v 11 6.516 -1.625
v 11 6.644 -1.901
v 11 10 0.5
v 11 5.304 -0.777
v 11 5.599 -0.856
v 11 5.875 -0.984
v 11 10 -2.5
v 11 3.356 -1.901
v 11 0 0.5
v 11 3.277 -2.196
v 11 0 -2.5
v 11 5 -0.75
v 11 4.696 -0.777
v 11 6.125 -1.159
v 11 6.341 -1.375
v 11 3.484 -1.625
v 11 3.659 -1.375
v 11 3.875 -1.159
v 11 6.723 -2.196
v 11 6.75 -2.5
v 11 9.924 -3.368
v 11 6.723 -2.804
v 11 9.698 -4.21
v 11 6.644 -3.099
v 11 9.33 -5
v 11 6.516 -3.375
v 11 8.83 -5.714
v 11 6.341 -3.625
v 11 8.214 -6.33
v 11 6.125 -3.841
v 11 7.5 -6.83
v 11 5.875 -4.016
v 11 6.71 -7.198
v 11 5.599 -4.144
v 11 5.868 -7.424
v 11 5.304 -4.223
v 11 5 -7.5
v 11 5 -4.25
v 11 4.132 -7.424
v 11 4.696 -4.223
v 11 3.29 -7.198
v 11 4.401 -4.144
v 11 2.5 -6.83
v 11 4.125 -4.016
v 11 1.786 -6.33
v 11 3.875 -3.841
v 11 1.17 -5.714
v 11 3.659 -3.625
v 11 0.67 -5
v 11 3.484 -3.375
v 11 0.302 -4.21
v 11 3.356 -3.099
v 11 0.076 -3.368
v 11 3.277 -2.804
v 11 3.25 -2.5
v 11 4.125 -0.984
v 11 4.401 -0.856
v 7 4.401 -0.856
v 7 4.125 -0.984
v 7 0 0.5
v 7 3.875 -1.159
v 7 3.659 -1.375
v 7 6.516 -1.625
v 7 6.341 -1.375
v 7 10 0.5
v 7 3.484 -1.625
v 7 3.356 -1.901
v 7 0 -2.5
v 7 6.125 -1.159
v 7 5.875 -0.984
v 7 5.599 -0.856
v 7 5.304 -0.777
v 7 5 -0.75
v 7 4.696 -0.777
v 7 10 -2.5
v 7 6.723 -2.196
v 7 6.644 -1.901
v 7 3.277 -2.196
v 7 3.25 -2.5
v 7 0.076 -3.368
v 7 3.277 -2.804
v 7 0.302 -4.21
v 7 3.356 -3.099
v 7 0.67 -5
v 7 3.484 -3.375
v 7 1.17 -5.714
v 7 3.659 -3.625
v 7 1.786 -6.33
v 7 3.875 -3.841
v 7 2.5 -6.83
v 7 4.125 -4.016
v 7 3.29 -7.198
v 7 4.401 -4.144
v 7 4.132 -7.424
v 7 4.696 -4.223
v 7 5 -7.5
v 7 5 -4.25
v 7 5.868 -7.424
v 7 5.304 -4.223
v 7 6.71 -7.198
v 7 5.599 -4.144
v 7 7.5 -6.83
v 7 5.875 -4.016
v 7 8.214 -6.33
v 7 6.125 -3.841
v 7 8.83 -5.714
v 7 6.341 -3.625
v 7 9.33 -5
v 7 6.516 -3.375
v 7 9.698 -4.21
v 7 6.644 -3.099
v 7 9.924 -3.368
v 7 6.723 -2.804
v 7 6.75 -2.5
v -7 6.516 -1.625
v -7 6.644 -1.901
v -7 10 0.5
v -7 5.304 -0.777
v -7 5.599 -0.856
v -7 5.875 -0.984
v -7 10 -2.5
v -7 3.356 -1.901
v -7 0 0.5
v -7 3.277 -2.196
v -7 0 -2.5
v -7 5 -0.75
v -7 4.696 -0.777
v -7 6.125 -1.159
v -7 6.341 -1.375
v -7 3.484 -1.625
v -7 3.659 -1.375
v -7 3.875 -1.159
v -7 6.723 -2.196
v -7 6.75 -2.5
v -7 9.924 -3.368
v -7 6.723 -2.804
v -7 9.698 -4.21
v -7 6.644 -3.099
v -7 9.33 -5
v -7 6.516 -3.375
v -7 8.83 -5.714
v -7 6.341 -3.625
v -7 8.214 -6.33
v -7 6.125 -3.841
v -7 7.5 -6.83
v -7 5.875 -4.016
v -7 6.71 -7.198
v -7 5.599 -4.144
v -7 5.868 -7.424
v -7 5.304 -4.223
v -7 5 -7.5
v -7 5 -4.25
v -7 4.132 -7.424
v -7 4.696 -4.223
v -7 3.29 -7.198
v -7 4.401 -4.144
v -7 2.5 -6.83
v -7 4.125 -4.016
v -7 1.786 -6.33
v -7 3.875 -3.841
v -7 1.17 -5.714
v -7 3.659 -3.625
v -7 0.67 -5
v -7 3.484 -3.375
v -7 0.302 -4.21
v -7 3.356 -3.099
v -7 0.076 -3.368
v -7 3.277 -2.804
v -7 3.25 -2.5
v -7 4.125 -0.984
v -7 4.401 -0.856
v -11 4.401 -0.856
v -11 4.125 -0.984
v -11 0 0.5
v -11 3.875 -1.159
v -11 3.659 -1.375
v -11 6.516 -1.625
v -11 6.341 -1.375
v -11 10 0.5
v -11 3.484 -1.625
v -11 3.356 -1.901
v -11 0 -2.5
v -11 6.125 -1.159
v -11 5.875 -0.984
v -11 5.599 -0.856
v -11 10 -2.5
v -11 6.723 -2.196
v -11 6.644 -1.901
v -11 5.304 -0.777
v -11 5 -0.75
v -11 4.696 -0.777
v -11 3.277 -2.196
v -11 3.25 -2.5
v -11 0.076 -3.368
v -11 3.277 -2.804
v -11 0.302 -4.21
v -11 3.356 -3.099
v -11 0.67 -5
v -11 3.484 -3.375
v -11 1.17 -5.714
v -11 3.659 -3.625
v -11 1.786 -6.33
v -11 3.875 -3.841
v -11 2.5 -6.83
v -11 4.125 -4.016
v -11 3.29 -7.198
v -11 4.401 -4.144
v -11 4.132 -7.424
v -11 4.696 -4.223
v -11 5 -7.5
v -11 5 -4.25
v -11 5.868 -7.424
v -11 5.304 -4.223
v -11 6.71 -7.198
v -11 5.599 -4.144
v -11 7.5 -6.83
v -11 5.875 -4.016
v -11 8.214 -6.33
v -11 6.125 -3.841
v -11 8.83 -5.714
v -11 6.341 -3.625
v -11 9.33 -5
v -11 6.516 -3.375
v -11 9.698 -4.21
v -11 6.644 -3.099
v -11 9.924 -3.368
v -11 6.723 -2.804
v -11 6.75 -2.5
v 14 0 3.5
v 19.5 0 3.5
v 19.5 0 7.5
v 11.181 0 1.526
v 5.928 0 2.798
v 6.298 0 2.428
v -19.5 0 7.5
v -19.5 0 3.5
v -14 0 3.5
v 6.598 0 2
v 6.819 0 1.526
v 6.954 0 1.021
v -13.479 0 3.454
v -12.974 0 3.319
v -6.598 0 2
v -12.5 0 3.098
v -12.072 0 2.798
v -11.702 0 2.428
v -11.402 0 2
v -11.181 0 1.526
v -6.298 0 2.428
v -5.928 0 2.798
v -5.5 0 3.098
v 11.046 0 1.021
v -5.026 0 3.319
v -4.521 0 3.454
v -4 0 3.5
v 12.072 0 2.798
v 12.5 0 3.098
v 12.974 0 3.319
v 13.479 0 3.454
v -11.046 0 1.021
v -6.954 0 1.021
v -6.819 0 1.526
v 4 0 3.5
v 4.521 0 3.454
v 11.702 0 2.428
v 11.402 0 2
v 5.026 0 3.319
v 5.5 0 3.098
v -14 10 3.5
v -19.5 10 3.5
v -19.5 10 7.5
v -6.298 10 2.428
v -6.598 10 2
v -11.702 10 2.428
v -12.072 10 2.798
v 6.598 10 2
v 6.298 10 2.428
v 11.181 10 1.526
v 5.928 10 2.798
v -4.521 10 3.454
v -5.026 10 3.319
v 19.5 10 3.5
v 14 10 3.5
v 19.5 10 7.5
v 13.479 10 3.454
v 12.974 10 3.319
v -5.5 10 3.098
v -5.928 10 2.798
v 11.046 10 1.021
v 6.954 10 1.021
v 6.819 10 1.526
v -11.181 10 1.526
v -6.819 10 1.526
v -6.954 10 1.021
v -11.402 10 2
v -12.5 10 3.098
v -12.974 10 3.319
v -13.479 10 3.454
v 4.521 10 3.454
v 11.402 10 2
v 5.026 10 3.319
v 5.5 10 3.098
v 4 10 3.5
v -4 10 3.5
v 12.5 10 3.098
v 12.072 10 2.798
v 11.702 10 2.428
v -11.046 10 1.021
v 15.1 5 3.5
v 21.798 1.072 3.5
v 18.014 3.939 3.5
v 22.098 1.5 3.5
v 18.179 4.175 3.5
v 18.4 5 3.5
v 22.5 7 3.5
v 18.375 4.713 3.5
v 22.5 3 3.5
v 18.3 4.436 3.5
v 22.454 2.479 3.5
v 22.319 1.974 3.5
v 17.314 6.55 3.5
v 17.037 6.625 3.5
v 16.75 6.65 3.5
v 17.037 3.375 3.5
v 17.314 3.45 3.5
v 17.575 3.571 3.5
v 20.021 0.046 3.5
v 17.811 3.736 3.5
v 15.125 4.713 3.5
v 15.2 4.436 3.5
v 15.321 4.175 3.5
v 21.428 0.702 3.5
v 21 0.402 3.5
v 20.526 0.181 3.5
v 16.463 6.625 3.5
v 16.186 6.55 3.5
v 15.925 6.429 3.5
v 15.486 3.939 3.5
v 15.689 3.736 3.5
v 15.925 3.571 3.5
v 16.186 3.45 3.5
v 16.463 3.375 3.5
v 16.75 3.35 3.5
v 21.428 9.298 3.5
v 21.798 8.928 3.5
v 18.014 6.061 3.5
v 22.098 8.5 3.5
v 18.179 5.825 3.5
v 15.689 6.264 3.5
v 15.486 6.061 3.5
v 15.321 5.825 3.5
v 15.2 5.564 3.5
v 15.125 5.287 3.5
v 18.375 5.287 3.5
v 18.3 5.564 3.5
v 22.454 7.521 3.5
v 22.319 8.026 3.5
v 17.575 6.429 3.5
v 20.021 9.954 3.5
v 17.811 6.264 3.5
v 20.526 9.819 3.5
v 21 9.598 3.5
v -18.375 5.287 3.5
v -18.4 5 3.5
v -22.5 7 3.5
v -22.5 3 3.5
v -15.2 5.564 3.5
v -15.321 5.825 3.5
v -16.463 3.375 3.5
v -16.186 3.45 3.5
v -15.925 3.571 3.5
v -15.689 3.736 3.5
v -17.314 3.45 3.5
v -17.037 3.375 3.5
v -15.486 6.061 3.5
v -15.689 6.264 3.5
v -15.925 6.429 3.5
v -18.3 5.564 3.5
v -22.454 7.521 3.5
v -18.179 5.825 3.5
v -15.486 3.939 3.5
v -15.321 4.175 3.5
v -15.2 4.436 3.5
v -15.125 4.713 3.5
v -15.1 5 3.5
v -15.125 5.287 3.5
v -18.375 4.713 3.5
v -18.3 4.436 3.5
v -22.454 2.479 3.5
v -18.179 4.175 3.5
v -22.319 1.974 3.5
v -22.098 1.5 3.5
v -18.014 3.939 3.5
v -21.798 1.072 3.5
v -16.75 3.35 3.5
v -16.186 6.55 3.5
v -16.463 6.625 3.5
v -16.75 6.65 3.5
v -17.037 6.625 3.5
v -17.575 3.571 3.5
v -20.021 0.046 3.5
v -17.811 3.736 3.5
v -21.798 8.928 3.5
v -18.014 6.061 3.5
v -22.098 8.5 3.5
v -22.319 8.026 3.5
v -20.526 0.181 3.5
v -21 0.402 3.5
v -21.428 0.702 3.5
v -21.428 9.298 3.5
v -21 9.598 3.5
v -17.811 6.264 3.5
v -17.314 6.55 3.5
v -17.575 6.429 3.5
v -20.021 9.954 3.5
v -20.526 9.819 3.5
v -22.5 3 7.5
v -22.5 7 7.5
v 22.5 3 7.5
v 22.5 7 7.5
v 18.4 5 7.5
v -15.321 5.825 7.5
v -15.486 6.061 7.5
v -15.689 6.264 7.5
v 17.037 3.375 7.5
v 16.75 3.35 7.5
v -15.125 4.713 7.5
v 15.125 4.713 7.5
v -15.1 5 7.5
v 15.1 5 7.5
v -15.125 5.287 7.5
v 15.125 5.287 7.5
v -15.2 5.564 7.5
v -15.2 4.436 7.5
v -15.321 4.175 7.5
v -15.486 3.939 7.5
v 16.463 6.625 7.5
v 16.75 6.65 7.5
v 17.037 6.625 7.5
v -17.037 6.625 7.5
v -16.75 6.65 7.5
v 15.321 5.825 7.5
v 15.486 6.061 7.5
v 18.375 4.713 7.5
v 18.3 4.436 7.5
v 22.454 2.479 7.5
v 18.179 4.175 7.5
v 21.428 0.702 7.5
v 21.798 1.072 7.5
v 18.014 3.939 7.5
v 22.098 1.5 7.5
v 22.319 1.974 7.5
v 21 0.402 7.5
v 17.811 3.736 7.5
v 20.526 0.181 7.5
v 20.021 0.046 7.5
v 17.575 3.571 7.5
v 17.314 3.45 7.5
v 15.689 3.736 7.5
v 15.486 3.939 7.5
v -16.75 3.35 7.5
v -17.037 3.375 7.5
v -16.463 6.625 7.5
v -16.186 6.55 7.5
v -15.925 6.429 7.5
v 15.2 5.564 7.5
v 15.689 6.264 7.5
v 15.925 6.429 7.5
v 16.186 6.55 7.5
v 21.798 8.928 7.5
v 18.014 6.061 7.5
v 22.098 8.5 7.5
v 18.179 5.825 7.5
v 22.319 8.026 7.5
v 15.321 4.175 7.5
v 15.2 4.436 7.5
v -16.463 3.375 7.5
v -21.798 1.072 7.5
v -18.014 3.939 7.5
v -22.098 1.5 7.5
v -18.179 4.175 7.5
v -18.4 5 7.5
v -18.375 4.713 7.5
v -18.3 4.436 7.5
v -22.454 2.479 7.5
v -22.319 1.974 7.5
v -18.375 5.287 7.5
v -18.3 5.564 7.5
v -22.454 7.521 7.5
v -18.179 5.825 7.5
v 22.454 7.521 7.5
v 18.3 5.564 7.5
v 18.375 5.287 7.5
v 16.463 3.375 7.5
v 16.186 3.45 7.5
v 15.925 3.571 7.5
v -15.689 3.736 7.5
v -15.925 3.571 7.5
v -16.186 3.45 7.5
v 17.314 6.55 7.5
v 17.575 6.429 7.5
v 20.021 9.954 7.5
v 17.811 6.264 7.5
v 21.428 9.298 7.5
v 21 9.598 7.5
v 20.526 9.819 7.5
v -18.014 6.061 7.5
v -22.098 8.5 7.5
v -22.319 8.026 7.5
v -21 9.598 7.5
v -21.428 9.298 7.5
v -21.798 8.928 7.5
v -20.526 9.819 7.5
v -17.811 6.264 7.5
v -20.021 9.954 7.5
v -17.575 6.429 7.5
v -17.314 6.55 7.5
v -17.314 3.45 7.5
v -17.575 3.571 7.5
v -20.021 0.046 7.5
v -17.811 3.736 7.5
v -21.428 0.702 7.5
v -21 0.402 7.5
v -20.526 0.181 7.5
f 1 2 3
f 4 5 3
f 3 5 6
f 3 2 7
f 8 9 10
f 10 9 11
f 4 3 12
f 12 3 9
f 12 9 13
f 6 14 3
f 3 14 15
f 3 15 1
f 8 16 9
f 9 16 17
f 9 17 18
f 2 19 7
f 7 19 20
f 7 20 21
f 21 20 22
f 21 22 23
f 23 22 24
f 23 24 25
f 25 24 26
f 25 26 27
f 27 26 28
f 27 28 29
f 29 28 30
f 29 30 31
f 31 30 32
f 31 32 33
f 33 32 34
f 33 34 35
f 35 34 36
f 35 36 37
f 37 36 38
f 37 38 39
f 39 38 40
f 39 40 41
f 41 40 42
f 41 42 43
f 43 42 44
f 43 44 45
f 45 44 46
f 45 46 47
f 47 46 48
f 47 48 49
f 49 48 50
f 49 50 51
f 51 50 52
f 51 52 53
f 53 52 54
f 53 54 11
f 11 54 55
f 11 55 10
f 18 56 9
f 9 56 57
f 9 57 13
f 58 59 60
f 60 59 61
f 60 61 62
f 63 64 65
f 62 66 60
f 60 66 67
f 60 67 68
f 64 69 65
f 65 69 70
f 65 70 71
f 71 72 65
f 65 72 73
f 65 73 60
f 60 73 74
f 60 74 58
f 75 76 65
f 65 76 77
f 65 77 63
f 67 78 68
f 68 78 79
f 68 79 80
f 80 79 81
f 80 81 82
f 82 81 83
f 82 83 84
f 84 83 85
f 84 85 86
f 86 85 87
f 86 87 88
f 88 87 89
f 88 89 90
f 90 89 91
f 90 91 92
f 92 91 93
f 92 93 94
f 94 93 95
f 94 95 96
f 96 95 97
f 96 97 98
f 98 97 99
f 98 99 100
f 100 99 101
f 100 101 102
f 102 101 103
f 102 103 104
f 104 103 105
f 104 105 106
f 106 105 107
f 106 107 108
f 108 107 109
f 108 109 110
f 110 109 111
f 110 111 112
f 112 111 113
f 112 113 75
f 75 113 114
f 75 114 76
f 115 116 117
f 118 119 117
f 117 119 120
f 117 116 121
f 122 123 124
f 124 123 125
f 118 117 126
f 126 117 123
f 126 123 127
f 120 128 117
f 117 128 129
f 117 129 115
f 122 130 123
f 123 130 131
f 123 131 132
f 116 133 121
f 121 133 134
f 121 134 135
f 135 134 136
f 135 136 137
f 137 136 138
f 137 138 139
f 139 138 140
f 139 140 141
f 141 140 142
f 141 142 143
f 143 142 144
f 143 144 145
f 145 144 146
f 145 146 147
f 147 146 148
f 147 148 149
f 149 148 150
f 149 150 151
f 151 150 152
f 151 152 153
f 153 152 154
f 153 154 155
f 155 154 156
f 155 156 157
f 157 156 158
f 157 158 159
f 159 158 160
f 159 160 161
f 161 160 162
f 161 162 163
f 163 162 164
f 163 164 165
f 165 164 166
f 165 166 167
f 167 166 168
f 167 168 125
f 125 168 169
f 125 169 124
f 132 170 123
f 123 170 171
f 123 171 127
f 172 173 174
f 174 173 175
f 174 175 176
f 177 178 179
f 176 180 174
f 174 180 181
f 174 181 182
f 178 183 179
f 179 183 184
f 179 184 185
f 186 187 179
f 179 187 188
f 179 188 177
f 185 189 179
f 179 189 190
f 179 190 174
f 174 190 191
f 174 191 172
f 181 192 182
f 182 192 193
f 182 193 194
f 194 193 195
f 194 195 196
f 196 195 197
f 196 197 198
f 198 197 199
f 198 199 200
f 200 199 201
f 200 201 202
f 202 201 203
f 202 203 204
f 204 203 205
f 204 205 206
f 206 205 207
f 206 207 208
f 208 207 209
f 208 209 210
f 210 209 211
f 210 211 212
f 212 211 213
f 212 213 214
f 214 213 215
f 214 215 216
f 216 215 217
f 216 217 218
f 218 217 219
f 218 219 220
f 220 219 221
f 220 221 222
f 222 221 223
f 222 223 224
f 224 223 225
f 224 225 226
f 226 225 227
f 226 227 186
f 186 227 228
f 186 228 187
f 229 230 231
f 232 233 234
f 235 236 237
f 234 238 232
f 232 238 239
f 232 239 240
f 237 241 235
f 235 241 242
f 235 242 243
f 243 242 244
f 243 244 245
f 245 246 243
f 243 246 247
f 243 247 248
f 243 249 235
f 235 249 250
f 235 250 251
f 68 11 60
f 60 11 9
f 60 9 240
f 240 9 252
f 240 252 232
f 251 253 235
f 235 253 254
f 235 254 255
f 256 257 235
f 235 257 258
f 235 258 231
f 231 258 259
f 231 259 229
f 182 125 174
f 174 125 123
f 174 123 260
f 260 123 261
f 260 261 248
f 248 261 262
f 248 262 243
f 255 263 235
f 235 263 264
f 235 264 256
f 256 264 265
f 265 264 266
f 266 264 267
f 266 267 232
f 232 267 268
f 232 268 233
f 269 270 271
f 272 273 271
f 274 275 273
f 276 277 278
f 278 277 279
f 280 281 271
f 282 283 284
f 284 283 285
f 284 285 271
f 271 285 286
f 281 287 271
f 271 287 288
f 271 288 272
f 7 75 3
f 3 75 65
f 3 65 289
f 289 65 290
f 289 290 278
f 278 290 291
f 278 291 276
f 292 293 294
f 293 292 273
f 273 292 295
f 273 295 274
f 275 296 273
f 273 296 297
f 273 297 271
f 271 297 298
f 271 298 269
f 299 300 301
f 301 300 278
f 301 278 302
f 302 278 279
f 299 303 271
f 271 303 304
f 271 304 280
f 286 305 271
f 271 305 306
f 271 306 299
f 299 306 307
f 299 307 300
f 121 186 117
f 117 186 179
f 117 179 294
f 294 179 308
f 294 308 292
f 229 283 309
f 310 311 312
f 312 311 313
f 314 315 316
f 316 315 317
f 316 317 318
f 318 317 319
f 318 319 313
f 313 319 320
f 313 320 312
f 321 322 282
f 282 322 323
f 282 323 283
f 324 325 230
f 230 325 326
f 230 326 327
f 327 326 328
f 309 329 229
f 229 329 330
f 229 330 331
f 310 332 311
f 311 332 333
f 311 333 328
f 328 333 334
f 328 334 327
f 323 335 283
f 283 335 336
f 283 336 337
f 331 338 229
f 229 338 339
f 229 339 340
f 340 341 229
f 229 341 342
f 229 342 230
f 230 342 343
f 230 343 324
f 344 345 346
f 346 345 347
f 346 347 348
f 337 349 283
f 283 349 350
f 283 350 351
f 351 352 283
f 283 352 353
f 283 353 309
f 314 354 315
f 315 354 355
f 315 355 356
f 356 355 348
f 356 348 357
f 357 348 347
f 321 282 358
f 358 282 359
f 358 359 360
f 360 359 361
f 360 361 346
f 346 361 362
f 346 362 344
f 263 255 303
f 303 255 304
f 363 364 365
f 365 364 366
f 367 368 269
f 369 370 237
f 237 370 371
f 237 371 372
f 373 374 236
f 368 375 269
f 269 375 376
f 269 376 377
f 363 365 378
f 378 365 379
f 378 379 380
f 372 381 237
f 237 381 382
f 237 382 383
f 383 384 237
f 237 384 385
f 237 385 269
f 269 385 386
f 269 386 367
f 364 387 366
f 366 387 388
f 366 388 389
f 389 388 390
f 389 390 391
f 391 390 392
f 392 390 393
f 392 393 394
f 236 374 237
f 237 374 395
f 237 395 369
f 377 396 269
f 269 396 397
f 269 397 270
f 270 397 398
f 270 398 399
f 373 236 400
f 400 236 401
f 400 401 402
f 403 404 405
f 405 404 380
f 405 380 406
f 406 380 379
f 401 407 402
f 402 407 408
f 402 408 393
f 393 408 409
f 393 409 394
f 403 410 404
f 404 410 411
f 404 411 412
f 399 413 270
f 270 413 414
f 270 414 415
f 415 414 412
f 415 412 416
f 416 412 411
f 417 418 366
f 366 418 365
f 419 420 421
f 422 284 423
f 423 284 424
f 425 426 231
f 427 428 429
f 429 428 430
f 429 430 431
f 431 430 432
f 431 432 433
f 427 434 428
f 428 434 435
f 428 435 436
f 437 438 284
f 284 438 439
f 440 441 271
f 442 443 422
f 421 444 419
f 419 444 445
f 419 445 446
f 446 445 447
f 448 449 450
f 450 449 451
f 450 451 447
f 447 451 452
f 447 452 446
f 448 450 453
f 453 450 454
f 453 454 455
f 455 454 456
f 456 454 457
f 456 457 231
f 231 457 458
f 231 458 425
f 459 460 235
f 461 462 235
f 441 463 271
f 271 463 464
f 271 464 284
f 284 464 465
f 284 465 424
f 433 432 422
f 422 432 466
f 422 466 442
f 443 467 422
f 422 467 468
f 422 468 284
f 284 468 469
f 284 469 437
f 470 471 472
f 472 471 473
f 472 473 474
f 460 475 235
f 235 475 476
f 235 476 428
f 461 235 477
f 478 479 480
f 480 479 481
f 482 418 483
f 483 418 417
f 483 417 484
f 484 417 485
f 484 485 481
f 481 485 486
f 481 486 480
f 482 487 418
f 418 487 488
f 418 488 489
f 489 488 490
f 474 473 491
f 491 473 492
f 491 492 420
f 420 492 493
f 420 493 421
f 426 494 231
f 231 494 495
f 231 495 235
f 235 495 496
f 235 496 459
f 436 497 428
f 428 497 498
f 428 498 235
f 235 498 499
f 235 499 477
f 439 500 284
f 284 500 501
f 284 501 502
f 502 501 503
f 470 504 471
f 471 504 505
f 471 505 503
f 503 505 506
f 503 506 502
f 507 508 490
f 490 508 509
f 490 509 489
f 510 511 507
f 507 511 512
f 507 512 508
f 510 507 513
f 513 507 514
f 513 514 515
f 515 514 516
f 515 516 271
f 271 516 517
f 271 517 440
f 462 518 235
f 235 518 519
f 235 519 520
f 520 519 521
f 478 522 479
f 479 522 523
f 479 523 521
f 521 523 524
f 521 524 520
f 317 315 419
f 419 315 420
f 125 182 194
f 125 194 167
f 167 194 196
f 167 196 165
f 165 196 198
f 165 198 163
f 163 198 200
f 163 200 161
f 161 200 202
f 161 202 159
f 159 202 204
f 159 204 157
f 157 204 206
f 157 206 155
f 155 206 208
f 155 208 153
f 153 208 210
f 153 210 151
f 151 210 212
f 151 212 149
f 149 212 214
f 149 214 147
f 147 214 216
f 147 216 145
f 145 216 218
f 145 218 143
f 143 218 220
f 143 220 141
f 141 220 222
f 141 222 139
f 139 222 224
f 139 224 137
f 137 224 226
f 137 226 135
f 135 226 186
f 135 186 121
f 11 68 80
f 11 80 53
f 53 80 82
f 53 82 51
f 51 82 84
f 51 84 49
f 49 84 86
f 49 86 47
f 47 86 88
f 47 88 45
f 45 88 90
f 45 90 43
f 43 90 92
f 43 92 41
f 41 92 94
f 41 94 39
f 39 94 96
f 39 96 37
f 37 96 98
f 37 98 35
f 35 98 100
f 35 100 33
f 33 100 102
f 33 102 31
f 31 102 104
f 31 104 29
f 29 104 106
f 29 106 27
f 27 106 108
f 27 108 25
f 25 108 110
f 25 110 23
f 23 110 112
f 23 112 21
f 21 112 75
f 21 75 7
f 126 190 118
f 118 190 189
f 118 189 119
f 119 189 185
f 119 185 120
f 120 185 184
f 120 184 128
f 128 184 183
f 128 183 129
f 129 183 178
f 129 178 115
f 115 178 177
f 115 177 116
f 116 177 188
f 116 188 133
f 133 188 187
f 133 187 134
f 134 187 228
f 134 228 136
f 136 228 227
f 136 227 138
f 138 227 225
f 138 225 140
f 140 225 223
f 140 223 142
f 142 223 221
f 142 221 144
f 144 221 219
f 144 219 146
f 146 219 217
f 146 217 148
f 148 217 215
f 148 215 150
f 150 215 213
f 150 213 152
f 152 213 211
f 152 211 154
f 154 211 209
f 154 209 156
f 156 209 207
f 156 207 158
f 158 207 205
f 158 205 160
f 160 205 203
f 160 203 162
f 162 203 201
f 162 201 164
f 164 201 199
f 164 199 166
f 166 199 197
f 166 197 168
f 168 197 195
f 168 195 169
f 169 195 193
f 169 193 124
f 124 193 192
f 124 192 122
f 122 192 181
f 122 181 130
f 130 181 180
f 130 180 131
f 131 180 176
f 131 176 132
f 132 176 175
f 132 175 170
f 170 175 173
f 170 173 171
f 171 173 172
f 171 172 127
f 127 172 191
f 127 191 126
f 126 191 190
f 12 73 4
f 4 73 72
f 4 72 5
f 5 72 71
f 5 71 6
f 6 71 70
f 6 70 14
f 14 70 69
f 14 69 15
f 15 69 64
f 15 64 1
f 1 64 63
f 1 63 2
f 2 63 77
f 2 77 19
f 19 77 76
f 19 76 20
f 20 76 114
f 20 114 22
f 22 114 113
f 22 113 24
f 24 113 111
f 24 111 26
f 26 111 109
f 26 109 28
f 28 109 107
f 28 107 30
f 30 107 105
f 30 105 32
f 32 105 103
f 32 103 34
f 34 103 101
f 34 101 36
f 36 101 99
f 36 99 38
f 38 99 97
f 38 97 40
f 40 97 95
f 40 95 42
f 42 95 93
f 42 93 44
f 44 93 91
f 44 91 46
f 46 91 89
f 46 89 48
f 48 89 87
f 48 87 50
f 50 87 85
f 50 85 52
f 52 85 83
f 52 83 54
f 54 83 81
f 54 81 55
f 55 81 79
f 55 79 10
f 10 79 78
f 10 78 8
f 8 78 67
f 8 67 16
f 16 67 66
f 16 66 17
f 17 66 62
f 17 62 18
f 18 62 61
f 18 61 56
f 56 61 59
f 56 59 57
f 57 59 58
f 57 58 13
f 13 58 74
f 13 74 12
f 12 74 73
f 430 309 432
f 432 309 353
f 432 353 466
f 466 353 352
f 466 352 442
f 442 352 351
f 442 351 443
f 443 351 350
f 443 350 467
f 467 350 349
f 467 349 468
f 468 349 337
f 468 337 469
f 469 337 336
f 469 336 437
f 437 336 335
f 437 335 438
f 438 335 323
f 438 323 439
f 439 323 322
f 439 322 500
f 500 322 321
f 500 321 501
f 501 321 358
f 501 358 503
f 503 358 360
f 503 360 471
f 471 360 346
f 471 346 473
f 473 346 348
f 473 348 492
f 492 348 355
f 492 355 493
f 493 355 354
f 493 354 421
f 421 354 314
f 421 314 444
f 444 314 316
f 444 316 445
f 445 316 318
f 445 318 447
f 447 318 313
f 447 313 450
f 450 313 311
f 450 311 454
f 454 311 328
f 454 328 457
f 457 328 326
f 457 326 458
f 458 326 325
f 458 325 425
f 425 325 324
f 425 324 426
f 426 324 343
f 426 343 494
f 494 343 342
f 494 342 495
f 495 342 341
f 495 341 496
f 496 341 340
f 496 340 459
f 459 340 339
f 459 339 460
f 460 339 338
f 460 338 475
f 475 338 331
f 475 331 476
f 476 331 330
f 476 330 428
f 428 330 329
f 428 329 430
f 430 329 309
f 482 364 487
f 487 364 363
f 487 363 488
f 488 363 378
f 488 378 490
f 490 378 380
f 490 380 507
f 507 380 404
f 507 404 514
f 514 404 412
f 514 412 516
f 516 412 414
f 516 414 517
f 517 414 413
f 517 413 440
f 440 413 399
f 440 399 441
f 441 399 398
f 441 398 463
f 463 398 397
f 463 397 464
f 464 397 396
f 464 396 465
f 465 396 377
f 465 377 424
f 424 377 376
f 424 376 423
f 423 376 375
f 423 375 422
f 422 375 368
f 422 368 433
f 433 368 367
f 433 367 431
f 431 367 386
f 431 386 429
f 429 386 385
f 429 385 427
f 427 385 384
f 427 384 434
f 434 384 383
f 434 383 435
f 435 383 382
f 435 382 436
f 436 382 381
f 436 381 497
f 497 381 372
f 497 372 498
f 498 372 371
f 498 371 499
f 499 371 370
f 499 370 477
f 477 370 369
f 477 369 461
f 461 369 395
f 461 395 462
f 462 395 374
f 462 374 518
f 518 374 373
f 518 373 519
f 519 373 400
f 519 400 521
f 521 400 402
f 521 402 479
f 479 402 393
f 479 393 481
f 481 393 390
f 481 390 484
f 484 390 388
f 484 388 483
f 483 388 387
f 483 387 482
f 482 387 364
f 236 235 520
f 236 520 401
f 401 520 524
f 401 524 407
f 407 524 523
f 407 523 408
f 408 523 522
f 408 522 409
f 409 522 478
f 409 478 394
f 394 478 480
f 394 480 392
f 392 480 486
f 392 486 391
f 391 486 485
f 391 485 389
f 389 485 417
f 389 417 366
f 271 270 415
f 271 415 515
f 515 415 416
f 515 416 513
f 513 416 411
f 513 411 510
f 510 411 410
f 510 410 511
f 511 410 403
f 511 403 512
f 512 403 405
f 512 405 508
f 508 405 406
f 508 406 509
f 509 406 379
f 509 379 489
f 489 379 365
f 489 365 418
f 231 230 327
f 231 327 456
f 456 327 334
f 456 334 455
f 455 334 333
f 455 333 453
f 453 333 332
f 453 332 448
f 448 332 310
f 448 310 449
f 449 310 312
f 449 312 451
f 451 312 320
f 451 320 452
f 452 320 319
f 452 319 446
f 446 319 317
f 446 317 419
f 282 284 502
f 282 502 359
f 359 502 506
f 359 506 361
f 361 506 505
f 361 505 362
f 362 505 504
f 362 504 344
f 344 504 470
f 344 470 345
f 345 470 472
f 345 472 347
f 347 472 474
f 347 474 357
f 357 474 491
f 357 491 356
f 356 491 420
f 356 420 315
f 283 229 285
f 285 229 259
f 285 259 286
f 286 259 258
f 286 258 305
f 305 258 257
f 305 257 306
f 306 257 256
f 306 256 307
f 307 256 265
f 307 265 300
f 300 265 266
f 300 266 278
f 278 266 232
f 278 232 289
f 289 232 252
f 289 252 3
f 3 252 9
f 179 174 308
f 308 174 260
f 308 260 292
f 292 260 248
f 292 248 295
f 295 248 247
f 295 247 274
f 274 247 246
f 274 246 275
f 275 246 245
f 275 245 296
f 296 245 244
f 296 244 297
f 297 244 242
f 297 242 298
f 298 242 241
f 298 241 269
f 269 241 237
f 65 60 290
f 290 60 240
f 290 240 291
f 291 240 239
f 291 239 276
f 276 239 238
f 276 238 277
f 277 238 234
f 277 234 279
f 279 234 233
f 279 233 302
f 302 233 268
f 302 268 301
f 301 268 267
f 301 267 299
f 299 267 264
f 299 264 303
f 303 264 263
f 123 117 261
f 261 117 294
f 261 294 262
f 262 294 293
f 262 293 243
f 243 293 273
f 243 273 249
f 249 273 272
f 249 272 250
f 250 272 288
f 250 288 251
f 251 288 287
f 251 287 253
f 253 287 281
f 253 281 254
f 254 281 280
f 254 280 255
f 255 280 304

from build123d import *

# Parameters (mm, degrees)
BOSS_EXTRUDE1_DEPTH     = 10
CUT_EXTRUDE1_DEPTH      = 36.756118358
CUT_EXTRUDE1_DEPTH_BACK = 36.756118358
SKETCH2_R               = 1.75
SKETCH3_R               = 1.65
CUT_EXTRUDE2_DEPTH      = 27.96757312
FILLET1_R               = 3


with BuildPart() as part:
    # Sketch1 → Boss-Extrude1 (new body)
    with BuildSketch(Plane(origin=(0, 0, 0), x_dir=(1, 0, 0), z_dir=(0, 1, 0))):
        Polygon((-22.5, -7.5), (22.5, -7.5), (22.5, -3.5), (11, -3.5), (11, 7.5), (7, 7.5), (7, -3.5), (-7, -3.5), (-7, 7.5), (-11, 7.5), (-11, -3.5), (-22.5, -3.5), align=None)
    extrude(amount=BOSS_EXTRUDE1_DEPTH)

    # Sketch2 → Cut-Extrude1 (cut, two sides: drawn at the far end of the back side and taken through both)
    with BuildSketch(Plane.ZY.offset(11).offset(-CUT_EXTRUDE1_DEPTH_BACK)):
        with BuildLine():
            Line((-7.5, 10), (-7.5, 5))
            ThreePointArc((-7.5, 5), (-6.035533906, 8.535533906), (-2.5, 10))
            Line((-2.5, 10), (-7.5, 10))
        make_face()
        with BuildLine():
            Line((-7.5, 0), (-2.5, 0))
            ThreePointArc((-2.5, 0), (-6.035533906, 1.464466094), (-7.5, 5))
            Line((-7.5, 5), (-7.5, 0))
        make_face()
        with Locations((-2.5, 5)):
            Circle(SKETCH2_R)
    extrude(amount=CUT_EXTRUDE1_DEPTH + CUT_EXTRUDE1_DEPTH_BACK, mode=Mode.SUBTRACT)

    # Sketch3 → Cut-Extrude2 (cut, through all)
    with BuildSketch(Plane(origin=(0, 0, 3.5), x_dir=(-1, 0, 0), z_dir=(0, 0, -1))):
        with Locations((16.75, 5)):
            Circle(SKETCH3_R)
        with Locations(Location((-16.75, 5, 0), (0, 0, 180))):
            Circle(SKETCH3_R)
    extrude(amount=-CUT_EXTRUDE2_DEPTH, mode=Mode.SUBTRACT)

    # Fillet1
    fillet1_edges = [part.edges().sort_by_distance(p)[0] for p in [
        (22.5, 0, 5.5),
        (-22.5, 0, 5.5),
        (-11, 5, 3.5),
        (-7, 5, 3.5),
        (7, 5, 3.5),
        (11, 5, 3.5),
        (-22.5, 10, 5.5),
        (22.5, 10, 5.5),
    ]]
    fillet(fillet1_edges, radius=FILLET1_R)


solid = part.part
